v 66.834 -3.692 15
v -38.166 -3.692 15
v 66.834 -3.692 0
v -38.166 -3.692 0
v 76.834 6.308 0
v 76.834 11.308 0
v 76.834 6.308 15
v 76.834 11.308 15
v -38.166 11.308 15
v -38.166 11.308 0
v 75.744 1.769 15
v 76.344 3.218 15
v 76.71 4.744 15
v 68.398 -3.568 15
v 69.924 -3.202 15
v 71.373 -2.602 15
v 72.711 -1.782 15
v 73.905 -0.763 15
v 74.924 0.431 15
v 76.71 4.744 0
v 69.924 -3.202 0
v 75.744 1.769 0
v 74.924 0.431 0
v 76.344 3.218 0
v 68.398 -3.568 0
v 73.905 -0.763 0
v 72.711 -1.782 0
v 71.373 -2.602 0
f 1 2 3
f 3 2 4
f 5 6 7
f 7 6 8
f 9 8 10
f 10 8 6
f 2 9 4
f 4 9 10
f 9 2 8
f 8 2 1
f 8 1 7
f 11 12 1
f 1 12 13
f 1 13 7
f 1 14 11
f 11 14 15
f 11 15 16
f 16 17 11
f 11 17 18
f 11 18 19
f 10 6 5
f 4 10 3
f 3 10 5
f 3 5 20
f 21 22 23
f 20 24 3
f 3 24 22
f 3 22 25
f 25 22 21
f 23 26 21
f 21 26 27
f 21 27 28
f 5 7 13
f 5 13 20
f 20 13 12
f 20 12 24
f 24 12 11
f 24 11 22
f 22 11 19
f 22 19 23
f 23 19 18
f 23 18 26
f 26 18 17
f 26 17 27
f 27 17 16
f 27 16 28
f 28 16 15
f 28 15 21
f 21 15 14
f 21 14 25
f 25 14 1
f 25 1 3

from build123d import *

# Parameters (mm, degrees)
SCHIZZO1_W                   = 115
SCHIZZO1_H                   = 15
ESTRUSIONE_ESTRUSIONE1_DEPTH = 15
RACCORDO5_R                  = 10


with BuildPart() as part:
    # Schizzo1 → Estrusione-Estrusione1 (new body)
    with BuildSketch(Plane.XY):
        with Locations((19.33351469, 3.808487486)):
            Rectangle(SCHIZZO1_W, SCHIZZO1_H)
    extrude(amount=ESTRUSIONE_ESTRUSIONE1_DEPTH)

    # Raccordo5
    raccordo5_edges = [part.edges().sort_by_distance(p)[0] for p in [
        (76.83351469, -3.691512514, 7.5),
    ]]
    fillet(raccordo5_edges, radius=RACCORDO5_R)


solid = part.part
